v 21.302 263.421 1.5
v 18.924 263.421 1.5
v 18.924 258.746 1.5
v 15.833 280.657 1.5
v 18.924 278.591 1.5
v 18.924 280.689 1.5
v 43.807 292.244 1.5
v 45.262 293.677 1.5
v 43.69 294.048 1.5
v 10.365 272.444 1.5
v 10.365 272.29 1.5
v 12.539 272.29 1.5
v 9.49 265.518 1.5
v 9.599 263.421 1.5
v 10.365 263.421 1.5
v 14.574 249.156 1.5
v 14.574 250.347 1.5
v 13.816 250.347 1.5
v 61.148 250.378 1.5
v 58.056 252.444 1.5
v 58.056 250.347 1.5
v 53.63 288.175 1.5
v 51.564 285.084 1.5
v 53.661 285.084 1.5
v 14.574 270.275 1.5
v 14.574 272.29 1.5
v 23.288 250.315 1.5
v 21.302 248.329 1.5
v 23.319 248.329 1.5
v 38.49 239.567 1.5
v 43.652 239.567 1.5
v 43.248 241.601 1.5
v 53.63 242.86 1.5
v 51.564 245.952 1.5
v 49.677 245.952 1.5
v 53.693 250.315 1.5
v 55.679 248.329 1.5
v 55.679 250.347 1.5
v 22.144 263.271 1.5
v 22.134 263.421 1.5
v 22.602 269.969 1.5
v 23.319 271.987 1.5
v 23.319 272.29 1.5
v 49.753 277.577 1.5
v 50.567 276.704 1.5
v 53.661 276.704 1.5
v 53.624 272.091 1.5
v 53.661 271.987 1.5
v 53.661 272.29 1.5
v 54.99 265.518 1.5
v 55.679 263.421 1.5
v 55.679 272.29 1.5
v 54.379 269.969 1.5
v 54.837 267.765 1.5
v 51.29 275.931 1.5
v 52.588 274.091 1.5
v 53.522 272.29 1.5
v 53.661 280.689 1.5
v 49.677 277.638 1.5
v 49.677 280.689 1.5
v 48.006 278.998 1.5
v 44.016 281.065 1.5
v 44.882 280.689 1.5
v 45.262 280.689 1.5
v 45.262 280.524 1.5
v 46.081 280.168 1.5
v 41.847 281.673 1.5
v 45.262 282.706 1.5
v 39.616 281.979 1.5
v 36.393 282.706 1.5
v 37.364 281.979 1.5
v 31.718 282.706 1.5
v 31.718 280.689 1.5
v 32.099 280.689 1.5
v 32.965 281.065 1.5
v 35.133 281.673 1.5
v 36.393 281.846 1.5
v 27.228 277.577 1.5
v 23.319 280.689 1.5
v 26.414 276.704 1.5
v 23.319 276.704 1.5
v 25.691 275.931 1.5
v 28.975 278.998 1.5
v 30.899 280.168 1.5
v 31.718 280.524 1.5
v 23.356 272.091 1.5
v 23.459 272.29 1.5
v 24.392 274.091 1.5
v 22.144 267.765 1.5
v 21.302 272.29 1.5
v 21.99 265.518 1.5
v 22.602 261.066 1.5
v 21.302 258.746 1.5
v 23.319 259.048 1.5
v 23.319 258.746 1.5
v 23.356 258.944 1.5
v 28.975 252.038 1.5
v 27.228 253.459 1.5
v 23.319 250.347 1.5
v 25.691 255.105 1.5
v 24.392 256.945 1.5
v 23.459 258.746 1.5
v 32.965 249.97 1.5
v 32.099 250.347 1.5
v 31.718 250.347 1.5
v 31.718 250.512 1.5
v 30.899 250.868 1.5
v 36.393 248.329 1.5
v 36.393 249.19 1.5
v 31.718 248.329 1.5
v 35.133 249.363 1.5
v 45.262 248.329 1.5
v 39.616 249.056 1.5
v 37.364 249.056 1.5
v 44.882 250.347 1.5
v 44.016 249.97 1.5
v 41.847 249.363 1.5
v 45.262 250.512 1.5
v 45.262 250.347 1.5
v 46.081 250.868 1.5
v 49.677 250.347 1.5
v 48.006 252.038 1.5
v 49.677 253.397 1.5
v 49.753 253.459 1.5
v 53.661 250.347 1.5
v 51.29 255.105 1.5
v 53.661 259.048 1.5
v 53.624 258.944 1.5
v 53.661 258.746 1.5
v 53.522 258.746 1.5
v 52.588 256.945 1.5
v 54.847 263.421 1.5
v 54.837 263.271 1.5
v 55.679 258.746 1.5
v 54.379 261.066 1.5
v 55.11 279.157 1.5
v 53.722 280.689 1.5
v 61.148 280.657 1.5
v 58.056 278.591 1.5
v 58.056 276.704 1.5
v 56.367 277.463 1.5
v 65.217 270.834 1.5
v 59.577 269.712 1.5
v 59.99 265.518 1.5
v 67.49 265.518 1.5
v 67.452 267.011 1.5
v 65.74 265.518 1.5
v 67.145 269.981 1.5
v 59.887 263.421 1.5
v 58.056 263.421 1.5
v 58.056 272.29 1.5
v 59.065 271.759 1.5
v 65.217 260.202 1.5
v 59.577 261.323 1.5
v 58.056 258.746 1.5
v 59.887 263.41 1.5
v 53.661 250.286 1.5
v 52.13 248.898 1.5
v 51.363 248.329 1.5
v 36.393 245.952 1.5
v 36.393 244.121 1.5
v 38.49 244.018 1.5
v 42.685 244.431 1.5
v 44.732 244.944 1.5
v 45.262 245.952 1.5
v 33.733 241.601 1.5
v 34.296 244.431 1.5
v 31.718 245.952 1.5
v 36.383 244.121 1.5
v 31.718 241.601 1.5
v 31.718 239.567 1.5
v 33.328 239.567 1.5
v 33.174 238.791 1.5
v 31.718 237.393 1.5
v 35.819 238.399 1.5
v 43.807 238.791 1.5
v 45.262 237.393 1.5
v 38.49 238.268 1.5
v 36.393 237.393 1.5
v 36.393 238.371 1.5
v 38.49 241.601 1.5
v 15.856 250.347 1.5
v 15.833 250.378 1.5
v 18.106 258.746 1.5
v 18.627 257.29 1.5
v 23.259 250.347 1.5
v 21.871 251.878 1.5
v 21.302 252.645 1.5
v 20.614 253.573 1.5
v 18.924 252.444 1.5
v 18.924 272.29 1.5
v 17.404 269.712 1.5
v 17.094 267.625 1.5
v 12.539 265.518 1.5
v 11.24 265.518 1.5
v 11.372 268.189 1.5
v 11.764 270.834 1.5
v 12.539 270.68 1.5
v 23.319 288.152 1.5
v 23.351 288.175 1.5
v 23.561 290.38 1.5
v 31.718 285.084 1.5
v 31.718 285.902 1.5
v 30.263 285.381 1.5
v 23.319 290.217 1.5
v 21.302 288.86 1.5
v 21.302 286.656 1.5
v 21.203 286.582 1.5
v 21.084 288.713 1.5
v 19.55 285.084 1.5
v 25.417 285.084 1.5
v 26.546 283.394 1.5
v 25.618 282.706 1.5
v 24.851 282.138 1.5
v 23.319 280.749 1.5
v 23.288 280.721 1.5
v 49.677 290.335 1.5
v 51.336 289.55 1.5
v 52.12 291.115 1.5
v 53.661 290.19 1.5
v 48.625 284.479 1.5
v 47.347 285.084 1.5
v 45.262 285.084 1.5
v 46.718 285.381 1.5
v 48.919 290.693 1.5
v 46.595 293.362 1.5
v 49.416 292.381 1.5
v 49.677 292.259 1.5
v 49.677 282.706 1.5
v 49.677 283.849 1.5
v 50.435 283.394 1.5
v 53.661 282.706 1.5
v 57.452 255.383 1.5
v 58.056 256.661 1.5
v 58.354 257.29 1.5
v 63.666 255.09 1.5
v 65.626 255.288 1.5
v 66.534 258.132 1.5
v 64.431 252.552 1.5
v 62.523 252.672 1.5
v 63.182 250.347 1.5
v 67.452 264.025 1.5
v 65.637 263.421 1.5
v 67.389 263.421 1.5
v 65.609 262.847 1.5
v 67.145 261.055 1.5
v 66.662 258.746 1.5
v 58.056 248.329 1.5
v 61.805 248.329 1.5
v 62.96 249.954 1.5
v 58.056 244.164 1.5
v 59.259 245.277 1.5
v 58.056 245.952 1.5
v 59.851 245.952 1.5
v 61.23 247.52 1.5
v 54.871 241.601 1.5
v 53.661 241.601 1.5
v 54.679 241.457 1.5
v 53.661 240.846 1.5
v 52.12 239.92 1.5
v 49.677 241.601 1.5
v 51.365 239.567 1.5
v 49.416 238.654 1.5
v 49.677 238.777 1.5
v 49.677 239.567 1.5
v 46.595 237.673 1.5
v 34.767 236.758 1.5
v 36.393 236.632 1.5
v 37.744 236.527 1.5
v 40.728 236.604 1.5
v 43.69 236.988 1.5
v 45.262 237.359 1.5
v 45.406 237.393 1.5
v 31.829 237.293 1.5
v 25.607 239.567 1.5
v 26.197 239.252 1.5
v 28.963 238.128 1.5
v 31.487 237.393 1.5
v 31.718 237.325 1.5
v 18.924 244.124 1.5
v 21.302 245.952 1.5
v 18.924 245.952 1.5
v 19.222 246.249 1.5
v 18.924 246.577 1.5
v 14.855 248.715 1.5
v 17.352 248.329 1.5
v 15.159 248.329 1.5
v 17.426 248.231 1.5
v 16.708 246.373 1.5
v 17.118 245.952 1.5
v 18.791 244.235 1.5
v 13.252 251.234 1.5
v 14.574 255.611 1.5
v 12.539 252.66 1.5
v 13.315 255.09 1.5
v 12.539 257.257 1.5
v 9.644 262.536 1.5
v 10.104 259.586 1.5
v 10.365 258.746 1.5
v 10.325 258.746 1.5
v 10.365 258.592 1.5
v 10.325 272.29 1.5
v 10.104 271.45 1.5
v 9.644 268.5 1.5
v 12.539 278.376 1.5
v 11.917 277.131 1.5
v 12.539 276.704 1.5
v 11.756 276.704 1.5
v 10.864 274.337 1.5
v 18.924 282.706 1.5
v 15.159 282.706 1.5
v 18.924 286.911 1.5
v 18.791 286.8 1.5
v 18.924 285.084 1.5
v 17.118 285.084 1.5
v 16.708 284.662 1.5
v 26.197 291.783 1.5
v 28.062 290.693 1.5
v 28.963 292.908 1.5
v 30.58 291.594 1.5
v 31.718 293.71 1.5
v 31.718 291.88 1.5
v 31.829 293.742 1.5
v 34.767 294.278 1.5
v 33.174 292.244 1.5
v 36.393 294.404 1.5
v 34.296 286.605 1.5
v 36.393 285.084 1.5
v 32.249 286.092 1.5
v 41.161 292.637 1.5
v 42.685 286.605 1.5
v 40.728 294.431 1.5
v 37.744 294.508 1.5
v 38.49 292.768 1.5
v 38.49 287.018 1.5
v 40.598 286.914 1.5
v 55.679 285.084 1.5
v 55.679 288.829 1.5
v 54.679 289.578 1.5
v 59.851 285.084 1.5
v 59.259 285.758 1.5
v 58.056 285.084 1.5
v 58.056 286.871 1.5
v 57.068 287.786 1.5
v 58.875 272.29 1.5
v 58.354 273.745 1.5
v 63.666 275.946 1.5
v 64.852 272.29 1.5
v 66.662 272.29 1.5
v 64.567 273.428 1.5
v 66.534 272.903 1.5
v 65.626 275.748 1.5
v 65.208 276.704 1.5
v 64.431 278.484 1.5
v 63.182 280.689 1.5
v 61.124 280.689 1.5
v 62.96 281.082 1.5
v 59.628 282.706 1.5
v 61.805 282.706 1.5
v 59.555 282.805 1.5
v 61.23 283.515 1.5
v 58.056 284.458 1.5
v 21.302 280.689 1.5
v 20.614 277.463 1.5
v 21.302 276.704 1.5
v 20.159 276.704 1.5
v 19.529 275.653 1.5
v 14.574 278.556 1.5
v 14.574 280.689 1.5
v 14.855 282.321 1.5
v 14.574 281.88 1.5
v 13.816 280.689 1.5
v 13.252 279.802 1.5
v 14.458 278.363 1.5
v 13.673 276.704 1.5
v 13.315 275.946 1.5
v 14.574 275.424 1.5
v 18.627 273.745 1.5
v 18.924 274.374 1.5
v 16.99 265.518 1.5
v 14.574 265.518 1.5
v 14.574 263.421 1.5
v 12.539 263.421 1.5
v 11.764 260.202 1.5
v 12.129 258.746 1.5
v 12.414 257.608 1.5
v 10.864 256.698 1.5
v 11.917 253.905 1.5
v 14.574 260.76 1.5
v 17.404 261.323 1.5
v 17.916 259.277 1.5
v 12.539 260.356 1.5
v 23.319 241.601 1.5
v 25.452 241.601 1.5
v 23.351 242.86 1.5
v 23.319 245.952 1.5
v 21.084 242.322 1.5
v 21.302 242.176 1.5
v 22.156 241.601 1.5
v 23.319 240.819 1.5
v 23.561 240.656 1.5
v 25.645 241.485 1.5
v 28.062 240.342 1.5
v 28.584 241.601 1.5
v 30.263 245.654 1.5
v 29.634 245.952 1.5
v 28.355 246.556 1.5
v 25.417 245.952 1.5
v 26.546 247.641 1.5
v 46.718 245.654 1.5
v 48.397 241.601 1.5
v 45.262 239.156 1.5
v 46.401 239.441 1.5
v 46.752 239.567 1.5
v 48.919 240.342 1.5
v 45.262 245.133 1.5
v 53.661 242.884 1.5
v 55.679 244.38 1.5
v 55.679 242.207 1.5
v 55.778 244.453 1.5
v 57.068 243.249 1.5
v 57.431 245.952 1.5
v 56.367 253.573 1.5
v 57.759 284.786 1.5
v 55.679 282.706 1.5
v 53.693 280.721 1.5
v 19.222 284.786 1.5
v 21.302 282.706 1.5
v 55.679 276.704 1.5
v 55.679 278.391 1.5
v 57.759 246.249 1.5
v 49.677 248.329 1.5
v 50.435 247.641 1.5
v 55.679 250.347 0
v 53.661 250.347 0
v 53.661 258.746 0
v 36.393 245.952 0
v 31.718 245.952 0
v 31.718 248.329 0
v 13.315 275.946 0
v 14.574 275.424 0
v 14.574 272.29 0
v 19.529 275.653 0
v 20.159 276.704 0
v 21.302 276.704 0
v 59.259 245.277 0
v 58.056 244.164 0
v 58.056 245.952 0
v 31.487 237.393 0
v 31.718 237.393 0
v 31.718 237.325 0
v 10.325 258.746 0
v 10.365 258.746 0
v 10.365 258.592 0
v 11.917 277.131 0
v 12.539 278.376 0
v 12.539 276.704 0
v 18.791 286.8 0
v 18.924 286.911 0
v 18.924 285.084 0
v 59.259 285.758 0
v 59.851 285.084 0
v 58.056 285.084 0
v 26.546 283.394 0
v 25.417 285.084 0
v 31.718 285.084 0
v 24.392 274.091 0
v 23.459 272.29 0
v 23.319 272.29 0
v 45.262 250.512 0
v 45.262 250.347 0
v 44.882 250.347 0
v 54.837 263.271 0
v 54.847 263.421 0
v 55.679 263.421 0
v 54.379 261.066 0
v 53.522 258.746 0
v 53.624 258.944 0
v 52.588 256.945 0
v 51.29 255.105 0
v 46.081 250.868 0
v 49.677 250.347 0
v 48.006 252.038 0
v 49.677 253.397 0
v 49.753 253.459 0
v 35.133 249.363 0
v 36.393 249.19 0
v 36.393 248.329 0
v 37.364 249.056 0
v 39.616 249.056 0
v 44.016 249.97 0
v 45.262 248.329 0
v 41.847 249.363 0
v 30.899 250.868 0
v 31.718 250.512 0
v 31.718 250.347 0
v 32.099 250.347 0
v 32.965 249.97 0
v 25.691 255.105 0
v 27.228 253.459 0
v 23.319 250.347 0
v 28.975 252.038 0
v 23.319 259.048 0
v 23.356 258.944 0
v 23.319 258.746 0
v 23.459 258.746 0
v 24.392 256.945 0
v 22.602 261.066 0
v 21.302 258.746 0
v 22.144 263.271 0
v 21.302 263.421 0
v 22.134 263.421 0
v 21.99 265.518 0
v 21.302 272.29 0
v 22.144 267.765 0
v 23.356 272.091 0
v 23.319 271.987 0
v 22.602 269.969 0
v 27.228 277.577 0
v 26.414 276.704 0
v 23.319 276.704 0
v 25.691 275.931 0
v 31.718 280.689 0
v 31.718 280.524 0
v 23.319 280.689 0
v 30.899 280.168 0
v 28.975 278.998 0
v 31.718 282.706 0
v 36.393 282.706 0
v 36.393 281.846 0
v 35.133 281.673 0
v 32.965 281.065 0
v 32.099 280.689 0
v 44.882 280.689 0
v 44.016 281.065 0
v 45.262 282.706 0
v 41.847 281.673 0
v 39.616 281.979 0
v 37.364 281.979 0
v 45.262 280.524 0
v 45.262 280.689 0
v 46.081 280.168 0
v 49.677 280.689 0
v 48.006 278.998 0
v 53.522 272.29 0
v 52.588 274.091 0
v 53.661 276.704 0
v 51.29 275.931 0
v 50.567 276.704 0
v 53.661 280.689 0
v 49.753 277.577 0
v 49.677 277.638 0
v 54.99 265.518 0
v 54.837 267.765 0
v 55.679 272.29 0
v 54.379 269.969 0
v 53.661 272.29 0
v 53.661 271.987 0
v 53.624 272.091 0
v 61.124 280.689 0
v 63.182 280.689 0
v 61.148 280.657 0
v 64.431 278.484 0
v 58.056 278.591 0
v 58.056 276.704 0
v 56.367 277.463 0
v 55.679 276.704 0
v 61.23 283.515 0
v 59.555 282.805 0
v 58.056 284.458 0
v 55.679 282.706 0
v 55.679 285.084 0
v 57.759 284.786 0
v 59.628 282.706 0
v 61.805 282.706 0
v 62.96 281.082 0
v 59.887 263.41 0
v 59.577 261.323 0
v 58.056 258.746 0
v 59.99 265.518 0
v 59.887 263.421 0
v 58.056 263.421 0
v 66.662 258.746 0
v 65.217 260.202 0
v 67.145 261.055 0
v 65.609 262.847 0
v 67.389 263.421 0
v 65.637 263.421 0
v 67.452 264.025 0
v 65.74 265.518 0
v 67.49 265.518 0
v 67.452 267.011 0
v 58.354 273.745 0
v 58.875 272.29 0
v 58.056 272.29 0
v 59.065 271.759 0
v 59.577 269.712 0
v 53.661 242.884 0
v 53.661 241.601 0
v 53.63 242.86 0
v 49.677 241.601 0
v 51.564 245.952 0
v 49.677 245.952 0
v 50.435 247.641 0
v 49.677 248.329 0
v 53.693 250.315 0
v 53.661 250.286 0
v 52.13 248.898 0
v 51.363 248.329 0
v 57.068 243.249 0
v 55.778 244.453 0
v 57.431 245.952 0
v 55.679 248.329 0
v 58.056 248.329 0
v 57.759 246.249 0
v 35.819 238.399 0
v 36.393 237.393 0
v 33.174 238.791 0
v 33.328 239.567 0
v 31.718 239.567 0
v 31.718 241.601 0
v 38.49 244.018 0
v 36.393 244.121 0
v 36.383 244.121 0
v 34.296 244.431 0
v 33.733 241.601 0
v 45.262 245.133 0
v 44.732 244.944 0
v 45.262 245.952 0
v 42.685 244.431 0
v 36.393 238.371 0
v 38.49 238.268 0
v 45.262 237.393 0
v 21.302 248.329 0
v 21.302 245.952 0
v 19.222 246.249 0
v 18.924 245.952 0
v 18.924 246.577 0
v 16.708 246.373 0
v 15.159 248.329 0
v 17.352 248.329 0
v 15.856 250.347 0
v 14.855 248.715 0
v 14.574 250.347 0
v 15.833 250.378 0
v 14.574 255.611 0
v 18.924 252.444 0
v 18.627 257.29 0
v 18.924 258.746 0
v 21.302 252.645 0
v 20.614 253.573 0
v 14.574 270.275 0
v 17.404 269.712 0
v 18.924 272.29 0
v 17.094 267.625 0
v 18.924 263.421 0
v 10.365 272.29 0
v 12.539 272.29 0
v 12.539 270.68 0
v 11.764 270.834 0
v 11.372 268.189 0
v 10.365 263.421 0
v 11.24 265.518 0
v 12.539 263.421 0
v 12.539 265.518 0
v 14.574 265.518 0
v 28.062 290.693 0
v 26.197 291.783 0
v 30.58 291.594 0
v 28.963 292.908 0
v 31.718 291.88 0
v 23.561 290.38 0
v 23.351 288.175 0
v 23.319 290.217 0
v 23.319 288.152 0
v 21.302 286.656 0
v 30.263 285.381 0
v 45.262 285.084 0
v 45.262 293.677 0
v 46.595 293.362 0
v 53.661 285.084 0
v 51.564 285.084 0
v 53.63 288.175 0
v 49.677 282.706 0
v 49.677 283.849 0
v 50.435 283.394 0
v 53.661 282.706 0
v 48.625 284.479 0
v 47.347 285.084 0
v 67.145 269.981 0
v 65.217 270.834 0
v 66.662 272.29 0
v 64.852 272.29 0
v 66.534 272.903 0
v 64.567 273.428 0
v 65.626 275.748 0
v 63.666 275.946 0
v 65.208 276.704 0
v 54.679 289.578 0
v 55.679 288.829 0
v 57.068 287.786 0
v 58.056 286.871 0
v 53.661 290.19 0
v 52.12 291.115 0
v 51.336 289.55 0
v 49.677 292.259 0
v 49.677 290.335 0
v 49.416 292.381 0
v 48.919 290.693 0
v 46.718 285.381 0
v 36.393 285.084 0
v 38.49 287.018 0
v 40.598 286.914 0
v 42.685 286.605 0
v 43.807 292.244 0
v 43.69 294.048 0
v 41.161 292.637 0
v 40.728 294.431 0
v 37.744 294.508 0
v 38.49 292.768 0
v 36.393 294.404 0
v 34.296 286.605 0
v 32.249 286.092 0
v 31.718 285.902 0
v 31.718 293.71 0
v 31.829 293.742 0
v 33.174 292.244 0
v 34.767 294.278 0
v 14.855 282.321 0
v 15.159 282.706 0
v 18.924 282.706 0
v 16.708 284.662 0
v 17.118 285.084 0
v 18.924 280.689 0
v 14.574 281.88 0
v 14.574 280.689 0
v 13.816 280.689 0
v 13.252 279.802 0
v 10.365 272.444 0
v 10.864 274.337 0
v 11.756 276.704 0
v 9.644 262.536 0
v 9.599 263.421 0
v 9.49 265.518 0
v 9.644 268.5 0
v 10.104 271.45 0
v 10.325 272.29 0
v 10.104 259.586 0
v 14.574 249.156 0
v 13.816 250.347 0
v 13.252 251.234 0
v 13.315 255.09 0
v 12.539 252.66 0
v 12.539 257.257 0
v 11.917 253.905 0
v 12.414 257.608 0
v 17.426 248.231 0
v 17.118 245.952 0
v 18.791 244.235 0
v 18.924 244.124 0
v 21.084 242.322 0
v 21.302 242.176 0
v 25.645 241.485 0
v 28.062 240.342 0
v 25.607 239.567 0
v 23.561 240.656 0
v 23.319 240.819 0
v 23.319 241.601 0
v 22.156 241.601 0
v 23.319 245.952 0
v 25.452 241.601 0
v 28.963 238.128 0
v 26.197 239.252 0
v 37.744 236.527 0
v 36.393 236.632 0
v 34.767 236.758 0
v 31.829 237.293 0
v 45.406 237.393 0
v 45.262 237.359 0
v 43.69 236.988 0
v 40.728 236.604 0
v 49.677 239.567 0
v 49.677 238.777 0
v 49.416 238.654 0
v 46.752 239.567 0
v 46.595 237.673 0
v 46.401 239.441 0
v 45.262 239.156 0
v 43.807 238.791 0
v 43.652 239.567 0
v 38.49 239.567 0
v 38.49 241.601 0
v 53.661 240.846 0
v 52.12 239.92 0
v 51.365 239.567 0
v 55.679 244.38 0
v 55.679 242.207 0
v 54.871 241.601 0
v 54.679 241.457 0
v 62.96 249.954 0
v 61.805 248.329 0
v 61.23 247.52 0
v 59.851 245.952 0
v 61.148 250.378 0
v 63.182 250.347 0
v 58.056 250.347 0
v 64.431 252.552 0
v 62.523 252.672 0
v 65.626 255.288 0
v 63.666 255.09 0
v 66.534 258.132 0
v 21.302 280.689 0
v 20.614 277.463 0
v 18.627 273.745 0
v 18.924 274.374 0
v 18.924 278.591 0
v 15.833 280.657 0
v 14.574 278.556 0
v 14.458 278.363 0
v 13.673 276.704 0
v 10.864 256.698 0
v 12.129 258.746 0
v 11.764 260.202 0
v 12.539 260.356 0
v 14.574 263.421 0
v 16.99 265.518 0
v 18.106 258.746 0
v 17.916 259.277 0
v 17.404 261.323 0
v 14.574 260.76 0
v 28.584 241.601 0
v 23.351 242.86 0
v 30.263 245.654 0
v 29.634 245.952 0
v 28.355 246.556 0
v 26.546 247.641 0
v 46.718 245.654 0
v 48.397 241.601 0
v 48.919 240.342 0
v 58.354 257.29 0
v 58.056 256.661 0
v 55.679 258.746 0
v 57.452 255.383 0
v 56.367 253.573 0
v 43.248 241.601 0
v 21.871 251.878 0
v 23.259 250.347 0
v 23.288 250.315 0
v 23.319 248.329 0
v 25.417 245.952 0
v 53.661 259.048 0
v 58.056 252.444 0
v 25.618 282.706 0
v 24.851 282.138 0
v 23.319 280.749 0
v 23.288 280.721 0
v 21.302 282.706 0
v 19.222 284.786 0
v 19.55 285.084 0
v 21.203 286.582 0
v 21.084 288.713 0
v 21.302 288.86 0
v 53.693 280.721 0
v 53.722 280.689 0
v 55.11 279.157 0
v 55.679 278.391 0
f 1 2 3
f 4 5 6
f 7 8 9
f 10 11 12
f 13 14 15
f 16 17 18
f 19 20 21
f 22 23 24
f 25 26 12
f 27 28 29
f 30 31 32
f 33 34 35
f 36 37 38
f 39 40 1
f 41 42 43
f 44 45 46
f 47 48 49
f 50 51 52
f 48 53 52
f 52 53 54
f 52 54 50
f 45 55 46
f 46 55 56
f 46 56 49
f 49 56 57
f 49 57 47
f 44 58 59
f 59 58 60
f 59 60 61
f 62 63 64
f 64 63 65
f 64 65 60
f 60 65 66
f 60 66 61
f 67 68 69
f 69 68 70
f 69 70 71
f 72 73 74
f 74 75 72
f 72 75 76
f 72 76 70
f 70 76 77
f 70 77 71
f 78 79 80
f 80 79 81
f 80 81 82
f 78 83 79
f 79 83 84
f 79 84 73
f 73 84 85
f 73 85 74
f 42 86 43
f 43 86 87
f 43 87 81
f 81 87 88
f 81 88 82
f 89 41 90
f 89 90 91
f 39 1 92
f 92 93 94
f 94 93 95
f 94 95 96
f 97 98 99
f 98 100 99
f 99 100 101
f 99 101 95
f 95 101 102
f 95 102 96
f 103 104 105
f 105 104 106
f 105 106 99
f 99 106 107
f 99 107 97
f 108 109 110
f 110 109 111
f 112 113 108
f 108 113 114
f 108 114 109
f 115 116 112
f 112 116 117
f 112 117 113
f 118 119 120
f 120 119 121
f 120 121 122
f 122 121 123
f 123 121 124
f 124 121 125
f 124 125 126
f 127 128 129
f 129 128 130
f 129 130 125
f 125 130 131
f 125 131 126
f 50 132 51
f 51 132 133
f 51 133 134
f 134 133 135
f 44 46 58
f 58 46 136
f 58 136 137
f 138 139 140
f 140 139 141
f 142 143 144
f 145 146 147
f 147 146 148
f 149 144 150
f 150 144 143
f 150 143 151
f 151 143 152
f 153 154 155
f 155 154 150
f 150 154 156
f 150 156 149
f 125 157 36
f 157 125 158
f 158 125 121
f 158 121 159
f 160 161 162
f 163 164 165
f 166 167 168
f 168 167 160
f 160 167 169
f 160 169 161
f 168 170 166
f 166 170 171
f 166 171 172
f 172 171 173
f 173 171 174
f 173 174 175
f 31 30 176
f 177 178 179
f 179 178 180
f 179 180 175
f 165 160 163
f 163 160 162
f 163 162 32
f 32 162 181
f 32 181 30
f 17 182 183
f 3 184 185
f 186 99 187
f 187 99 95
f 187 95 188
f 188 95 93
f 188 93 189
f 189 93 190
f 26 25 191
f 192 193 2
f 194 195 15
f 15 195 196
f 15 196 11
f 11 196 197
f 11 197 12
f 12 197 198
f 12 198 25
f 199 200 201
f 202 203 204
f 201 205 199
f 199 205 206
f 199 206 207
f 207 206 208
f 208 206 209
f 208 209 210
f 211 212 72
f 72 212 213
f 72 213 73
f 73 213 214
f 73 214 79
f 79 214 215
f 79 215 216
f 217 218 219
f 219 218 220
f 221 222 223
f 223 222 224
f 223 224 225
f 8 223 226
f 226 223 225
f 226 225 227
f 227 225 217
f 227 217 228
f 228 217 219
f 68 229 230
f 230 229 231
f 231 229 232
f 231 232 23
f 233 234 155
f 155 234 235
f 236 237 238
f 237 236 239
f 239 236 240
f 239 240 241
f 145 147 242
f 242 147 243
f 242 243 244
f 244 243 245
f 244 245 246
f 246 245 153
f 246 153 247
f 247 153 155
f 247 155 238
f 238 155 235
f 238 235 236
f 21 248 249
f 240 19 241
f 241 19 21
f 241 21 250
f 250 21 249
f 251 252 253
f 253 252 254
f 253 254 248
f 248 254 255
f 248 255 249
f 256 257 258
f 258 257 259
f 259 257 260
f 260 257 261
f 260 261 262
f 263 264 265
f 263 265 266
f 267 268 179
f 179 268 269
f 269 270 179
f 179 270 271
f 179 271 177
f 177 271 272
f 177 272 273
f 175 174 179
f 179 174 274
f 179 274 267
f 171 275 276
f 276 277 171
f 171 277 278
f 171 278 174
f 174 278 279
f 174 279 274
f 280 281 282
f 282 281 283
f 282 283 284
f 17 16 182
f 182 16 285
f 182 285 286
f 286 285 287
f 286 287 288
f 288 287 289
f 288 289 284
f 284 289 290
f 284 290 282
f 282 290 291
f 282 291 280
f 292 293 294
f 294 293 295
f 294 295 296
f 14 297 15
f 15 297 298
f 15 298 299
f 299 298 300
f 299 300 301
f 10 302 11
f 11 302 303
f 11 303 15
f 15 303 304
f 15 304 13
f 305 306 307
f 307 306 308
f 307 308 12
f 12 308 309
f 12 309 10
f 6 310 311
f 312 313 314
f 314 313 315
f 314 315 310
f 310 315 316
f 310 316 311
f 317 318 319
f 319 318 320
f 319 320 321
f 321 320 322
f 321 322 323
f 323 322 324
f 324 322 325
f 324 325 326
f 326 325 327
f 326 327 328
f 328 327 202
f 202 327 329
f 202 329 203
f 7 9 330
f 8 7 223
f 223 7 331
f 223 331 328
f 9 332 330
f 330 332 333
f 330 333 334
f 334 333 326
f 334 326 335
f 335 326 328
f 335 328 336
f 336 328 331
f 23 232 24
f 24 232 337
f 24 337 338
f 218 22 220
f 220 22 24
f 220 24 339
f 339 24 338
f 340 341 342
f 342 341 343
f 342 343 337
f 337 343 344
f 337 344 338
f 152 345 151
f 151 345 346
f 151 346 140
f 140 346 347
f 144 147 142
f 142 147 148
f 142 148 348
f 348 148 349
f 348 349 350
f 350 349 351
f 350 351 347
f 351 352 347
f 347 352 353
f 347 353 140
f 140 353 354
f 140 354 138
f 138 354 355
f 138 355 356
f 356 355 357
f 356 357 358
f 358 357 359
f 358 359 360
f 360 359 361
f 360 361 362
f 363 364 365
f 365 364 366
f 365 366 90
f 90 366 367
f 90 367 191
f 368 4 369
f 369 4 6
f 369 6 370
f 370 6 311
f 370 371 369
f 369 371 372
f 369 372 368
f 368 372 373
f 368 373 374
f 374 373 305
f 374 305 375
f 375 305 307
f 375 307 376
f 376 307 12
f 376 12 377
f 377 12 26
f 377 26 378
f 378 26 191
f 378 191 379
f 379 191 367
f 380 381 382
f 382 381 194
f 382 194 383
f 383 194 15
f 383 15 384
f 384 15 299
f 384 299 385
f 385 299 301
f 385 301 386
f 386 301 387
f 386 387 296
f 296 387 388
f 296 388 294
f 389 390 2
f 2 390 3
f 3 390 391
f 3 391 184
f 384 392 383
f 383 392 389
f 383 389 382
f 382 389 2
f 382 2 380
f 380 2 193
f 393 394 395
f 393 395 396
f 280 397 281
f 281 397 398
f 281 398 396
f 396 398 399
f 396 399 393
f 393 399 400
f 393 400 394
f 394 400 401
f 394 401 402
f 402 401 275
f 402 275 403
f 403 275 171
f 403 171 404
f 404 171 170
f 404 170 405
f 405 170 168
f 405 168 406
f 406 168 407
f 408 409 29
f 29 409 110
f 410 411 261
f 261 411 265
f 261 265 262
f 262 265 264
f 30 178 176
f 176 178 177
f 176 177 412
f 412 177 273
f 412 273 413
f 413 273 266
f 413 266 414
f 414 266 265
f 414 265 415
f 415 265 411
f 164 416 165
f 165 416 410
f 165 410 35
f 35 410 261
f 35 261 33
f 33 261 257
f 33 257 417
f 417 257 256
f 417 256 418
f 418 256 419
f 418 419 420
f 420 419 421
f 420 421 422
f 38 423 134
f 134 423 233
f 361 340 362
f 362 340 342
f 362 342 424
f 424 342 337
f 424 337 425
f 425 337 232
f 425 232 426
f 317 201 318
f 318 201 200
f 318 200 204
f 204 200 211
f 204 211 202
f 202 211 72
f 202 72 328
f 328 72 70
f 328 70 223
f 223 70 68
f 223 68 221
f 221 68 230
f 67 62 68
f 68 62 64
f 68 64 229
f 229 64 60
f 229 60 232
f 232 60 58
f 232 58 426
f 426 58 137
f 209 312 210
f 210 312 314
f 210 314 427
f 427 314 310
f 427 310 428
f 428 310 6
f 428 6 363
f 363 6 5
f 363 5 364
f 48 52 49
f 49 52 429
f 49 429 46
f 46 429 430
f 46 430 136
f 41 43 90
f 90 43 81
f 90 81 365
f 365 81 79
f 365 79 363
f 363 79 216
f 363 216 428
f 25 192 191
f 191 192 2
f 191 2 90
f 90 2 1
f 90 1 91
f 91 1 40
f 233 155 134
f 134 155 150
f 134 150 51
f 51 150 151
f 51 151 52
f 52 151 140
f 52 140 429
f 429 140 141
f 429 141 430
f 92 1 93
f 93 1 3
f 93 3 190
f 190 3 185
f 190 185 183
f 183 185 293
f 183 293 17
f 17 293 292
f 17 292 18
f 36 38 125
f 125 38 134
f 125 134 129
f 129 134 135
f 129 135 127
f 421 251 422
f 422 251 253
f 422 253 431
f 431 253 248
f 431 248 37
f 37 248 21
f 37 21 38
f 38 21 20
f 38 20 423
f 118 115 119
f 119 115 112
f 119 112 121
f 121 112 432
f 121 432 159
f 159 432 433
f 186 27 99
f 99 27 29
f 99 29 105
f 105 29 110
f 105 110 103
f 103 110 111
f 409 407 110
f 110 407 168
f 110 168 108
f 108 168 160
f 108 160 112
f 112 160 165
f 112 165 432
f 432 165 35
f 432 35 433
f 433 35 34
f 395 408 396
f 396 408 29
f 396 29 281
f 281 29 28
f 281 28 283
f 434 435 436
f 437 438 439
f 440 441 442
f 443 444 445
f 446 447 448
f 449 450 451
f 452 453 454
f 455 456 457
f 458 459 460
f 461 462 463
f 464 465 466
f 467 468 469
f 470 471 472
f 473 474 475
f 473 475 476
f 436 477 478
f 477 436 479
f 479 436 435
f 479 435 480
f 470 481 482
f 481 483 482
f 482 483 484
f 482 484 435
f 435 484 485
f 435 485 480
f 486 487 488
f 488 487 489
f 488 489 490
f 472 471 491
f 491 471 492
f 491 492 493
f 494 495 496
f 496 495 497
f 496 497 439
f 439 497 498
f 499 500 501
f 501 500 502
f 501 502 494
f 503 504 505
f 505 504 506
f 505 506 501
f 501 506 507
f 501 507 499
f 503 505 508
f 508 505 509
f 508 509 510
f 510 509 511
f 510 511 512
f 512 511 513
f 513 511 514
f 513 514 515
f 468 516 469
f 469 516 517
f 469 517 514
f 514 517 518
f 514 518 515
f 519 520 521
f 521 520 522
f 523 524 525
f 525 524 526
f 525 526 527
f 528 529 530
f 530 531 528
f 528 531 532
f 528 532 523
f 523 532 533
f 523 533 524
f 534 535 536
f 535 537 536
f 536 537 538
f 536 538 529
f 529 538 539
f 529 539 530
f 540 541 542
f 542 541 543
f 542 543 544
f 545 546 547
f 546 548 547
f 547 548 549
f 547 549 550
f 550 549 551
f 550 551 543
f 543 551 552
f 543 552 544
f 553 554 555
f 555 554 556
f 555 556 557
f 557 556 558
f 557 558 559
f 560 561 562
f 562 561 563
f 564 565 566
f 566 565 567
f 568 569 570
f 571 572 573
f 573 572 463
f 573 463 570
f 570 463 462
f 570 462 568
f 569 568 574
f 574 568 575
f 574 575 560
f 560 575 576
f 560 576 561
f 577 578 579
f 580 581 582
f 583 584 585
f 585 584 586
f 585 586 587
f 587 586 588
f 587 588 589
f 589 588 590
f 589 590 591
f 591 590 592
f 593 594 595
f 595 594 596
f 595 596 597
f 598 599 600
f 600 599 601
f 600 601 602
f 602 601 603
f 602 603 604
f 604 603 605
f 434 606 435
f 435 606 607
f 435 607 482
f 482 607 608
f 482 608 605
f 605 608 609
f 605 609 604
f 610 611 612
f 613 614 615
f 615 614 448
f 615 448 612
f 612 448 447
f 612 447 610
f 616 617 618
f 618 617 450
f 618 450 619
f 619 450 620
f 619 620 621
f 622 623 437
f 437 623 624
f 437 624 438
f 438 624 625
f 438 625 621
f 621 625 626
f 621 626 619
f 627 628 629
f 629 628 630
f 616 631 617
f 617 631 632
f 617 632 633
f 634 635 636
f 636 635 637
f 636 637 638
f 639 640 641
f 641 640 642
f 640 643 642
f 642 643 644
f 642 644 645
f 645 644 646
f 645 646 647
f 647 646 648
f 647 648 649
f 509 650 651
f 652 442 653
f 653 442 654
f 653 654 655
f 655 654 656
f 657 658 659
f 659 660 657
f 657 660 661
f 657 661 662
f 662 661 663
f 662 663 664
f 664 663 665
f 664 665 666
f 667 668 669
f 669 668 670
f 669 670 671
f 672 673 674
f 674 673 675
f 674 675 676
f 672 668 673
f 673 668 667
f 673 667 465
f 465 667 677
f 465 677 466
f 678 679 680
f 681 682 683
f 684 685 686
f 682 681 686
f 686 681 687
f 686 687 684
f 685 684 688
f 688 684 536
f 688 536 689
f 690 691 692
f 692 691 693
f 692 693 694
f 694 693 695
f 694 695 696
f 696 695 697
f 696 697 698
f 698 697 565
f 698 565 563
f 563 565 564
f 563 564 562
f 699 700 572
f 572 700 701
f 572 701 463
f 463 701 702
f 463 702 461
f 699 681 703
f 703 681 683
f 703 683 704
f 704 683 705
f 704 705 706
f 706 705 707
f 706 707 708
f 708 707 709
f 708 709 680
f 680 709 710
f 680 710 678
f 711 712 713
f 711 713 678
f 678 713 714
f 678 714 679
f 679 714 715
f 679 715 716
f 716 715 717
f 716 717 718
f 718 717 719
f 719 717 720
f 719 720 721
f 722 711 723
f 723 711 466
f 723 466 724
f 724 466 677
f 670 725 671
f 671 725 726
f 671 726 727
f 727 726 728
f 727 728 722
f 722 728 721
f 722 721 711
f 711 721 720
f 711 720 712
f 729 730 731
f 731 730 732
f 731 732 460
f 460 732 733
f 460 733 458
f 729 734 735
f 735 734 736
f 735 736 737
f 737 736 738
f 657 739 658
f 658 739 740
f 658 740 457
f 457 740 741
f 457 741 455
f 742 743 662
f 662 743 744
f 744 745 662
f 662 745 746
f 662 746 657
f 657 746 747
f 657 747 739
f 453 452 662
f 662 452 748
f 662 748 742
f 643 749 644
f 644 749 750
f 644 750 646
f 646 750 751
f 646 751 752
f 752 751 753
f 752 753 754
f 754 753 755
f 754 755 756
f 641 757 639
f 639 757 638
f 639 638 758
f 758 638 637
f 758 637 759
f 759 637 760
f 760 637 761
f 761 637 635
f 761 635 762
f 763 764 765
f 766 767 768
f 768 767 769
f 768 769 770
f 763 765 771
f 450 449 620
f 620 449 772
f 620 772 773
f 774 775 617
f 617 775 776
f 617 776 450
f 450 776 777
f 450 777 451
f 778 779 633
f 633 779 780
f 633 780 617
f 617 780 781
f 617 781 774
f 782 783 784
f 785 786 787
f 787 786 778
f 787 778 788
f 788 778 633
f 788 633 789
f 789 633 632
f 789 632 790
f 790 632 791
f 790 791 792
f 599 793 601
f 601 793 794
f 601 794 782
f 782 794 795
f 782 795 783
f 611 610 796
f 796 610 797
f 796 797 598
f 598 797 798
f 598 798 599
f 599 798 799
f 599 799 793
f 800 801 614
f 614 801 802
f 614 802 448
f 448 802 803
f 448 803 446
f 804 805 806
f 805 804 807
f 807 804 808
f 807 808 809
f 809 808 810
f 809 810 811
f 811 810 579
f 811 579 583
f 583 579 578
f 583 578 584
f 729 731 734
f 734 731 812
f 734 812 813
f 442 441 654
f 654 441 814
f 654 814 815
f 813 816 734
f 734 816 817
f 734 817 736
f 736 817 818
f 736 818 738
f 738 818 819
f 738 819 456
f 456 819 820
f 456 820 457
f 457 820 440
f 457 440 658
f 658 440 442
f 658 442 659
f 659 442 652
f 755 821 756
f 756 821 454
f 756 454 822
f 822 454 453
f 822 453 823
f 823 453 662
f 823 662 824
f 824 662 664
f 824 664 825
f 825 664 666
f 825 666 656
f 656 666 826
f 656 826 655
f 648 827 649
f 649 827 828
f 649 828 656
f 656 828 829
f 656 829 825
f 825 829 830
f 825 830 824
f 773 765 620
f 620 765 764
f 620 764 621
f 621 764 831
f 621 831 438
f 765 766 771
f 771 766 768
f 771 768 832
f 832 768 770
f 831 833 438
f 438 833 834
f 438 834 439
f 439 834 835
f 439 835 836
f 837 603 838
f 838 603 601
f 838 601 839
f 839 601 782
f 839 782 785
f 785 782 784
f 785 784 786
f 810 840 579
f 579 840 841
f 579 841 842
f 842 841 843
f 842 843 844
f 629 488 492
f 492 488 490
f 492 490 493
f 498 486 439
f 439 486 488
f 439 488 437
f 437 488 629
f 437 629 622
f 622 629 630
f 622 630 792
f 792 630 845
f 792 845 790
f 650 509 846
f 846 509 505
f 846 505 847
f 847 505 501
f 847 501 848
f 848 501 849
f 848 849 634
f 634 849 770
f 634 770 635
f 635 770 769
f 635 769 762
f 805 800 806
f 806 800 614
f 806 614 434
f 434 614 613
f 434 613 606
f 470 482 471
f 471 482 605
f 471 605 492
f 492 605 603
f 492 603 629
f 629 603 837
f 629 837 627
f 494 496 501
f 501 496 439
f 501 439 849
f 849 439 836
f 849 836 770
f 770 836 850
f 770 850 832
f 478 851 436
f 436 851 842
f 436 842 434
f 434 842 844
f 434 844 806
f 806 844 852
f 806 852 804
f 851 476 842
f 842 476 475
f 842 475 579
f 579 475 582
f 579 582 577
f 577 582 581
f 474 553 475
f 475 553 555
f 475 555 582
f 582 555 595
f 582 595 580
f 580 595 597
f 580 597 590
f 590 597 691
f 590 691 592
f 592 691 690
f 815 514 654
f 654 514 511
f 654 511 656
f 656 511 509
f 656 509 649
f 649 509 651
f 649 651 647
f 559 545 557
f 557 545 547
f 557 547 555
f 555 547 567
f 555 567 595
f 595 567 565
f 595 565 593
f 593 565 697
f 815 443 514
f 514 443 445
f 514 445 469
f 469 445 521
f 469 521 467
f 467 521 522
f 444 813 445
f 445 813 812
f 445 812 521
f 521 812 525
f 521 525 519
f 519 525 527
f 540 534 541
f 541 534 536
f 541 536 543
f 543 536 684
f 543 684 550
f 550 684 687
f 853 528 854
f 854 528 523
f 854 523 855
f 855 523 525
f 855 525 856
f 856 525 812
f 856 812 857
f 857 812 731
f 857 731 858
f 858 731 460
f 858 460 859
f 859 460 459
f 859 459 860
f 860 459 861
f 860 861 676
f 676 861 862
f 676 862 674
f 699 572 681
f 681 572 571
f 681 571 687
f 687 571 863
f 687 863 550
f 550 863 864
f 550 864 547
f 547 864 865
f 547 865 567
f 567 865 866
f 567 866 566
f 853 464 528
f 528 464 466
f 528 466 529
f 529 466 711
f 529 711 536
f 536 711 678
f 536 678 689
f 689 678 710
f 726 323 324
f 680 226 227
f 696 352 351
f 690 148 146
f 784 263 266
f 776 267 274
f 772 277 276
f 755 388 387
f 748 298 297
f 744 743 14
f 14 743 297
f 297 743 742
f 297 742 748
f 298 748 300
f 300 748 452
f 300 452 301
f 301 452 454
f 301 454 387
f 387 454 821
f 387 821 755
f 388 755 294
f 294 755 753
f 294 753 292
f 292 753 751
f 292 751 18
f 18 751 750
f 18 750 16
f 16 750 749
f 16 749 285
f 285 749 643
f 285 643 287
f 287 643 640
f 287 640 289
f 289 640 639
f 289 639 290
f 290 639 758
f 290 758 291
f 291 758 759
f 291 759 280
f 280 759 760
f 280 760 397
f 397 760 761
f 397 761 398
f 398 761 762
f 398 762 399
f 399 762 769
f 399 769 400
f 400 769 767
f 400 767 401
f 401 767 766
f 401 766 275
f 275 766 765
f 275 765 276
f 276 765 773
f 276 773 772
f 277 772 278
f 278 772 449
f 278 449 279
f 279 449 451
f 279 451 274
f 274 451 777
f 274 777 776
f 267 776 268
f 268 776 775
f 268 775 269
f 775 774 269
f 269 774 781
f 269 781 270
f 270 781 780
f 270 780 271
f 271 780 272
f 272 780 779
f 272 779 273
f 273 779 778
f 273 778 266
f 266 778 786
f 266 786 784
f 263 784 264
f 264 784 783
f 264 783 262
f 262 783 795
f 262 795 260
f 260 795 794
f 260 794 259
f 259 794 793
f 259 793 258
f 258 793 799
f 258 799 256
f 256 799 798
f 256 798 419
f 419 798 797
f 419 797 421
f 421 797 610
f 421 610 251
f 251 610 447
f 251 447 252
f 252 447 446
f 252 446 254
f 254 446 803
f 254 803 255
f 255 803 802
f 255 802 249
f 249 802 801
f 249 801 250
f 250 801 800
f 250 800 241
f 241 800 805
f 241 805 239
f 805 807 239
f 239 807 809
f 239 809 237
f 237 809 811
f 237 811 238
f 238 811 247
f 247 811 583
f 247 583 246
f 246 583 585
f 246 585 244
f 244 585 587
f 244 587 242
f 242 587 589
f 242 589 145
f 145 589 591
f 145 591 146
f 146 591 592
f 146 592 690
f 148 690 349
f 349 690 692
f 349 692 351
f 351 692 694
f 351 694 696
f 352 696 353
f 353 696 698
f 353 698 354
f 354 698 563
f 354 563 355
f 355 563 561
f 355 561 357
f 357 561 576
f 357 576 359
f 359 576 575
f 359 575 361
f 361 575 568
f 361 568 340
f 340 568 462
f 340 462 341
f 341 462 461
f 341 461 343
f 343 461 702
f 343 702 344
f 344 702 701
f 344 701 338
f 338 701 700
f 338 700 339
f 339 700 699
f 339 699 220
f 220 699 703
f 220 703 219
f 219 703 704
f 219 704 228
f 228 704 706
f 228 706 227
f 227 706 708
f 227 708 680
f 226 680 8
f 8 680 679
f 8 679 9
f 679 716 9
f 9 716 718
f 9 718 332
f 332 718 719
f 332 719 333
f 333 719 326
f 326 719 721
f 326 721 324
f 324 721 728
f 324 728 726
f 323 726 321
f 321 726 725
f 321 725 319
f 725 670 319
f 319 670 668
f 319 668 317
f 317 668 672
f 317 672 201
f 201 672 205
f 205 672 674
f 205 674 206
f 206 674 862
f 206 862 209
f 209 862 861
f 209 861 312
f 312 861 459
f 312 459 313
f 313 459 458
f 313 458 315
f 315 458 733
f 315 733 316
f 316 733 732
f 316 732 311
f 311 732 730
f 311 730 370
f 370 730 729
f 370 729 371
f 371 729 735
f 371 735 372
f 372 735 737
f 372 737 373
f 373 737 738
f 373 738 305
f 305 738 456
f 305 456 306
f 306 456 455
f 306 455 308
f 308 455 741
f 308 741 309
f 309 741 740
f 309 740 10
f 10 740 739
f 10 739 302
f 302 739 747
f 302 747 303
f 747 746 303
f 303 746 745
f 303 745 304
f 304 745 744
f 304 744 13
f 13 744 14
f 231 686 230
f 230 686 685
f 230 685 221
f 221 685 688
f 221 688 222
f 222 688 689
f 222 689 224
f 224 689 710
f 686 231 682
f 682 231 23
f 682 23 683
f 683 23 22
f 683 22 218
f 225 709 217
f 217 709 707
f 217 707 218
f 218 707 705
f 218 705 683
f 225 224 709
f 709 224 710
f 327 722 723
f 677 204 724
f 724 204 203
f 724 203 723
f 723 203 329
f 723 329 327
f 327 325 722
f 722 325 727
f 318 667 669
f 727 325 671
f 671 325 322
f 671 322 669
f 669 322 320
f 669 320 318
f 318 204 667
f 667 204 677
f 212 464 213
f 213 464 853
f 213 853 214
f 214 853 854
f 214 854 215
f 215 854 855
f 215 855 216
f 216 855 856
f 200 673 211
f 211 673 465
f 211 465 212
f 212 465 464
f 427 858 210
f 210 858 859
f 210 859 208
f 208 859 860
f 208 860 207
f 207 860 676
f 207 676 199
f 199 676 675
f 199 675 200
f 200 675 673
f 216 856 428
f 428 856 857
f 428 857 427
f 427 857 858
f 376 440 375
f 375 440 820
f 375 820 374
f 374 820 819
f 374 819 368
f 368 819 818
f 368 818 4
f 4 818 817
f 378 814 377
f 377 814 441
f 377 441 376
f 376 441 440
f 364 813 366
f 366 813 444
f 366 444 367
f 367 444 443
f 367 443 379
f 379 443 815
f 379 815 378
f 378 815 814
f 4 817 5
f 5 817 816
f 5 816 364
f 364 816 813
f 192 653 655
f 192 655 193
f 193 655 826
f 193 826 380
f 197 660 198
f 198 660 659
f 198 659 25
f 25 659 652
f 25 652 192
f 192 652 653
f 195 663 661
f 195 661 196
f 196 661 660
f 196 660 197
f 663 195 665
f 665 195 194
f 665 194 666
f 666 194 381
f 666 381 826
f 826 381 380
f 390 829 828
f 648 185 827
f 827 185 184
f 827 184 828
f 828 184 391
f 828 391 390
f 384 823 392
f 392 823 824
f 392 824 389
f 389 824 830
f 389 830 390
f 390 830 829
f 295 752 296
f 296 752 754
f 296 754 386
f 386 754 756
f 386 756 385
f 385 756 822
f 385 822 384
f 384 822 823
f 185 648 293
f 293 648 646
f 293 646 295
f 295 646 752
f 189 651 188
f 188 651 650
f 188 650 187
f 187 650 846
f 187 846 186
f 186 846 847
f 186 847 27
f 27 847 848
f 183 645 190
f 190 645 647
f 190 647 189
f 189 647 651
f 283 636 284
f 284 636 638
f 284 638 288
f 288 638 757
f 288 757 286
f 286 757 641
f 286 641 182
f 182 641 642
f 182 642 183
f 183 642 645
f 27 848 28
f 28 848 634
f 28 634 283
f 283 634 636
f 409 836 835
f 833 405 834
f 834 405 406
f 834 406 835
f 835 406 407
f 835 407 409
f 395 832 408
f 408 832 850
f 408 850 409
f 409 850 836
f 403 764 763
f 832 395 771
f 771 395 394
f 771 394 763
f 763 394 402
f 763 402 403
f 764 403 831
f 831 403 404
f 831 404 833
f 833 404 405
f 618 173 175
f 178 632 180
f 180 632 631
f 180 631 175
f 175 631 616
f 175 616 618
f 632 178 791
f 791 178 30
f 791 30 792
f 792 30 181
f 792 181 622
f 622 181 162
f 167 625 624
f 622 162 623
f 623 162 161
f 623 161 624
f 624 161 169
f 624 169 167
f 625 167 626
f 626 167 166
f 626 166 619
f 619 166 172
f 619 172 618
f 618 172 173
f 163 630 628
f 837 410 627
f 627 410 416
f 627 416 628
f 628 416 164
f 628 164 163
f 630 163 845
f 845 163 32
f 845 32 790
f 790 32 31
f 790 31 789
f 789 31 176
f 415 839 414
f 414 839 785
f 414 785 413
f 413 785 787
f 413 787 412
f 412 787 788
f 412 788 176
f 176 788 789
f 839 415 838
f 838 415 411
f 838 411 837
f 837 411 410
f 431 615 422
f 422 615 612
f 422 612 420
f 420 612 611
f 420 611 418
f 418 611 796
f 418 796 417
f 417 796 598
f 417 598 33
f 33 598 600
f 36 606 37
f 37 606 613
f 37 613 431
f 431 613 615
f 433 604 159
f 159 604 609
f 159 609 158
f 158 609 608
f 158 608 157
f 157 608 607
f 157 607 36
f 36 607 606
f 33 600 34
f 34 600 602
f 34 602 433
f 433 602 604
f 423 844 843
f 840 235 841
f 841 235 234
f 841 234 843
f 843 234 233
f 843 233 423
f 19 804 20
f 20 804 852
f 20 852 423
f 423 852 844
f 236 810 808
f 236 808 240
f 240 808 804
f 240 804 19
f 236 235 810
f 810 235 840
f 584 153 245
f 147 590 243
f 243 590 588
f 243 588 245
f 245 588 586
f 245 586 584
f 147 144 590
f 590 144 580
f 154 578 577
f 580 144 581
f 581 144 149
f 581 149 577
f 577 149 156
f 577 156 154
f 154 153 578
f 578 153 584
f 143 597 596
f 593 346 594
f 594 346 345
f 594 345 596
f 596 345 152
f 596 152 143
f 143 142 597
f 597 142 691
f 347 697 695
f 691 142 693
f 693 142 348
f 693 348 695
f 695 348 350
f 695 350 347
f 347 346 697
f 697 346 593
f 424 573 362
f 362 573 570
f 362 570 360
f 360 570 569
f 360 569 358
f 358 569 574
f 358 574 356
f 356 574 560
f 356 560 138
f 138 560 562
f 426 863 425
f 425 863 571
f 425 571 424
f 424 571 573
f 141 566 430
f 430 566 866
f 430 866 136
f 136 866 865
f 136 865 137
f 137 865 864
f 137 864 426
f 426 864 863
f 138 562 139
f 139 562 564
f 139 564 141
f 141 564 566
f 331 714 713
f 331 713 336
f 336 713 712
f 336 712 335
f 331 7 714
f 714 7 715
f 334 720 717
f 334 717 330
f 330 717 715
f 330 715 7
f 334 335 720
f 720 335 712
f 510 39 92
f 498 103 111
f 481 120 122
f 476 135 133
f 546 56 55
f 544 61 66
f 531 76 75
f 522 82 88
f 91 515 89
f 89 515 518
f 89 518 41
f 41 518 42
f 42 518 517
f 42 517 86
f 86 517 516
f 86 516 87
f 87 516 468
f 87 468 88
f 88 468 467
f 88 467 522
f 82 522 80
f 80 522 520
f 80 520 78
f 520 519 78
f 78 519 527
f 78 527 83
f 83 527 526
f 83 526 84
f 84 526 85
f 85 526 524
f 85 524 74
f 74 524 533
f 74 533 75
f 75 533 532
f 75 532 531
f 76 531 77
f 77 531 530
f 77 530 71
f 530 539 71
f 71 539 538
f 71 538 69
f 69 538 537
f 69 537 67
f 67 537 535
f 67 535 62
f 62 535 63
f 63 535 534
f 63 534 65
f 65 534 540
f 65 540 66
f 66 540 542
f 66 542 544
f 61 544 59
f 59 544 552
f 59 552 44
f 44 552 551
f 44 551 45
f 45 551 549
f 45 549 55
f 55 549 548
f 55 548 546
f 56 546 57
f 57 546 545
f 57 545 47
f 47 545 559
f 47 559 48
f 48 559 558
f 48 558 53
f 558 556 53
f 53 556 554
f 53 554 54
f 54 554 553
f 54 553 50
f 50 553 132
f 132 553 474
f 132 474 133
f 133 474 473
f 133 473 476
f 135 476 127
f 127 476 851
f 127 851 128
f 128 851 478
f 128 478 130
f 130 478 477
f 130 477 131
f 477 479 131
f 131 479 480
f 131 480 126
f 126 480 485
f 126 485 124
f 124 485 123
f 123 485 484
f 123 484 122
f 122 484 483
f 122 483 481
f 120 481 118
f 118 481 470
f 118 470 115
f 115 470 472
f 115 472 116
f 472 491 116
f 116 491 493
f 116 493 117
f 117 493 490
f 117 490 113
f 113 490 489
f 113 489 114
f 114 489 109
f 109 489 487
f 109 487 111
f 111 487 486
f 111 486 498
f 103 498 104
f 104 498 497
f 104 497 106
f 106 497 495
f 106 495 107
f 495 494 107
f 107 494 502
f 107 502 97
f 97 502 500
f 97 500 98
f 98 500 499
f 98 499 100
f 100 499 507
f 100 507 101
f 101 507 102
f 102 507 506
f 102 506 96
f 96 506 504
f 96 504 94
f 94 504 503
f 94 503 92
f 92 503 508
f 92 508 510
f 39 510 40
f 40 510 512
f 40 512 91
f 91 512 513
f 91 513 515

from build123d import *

# Parameters (mm, degrees)
MODEL_R                 = 29
MODEL_R_2               = 16.5
SALIENTE_EXTRUIR1_DEPTH = 1.5


with BuildPart() as part:
    # Model → Saliente-Extruir1 (new body)
    with BuildSketch(Plane.XY):
        with Locations((38.490393449, 265.517783021)):
            Circle(MODEL_R)
        with Locations((38.490393449, 265.517783021)):
            Circle(MODEL_R_2, mode=Mode.SUBTRACT)
        with BuildLine():
            Line((38.490393449, 287.017783021), (38.490393449, 292.767783021))
            ThreePointArc((38.490393449, 292.767783021), (41.161360523, 292.636566823), (43.806604724, 292.244181912))
            Line((43.806604724, 292.244181912), (42.684835372, 286.60466655))
            ThreePointArc((42.684835372, 286.60466655), (40.597761966, 286.914254645), (38.490393449, 287.017783021))
        make_face(mode=Mode.SUBTRACT)
        with BuildLine():
            Line((34.295951526, 286.60466655), (33.174182174, 292.244181912))
            ThreePointArc((33.174182174, 292.244181912), (30.580135994, 291.59440717), (28.062269917, 290.693500282))
            Line((28.062269917, 290.693500282), (30.262699653, 285.38119297))
            ThreePointArc((30.262699653, 285.38119297), (32.249272888, 286.09200024), (34.295951526, 286.60466655))
        make_face(mode=Mode.SUBTRACT)
        with BuildLine():
            Line((26.545633439, 283.394379686), (23.351104599, 288.175329957))
            ThreePointArc((23.351104599, 288.175329957), (21.203176455, 286.582317876), (19.221733662, 284.786442809))
            Line((19.221733662, 284.786442809), (23.287597653, 280.720578817))
            ThreePointArc((23.287597653, 280.720578817), (24.850937839, 282.137507769), (26.545633439, 283.394379686))
        make_face(mode=Mode.SUBTRACT)
        with BuildLine():
            Line((20.613796784, 277.462543031), (15.832846514, 280.657071871))
            ThreePointArc((15.832846514, 280.657071871), (14.458038995, 278.3633441), (13.314676188, 275.945906553))
            Line((13.314676188, 275.945906553), (18.6269835, 273.745476817))
            ThreePointArc((18.6269835, 273.745476817), (19.529086265, 275.652812863), (20.613796784, 277.462543031))
        make_face(mode=Mode.SUBTRACT)
        with BuildLine():
            Line((17.40350992, 269.712224945), (11.763994558, 270.833994296))
            ThreePointArc((11.763994558, 270.833994296), (11.371609647, 268.188750095), (11.240393449, 265.517783021))
            Line((11.240393449, 265.517783021), (16.990393449, 265.517783021))
            ThreePointArc((16.990393449, 265.517783021), (17.093921825, 267.625151538), (17.40350992, 269.712224945))
        make_face(mode=Mode.SUBTRACT)
        with BuildLine():
            Line((17.40350992, 261.323341098), (11.763994558, 260.201571746))
            ThreePointArc((11.763994558, 260.201571746), (12.4137693, 257.607525566), (13.314676188, 255.089659489))
            Line((13.314676188, 255.089659489), (18.6269835, 257.290089226))
            ThreePointArc((18.6269835, 257.290089226), (17.916176231, 259.27666246), (17.40350992, 261.323341098))
        make_face(mode=Mode.SUBTRACT)
        with BuildLine():
            Line((20.613796784, 253.573023011), (15.832846514, 250.378494172))
            ThreePointArc((15.832846514, 250.378494172), (17.425858595, 248.230566028), (19.221733662, 246.249123234))
            Line((19.221733662, 246.249123234), (23.287597653, 250.314987226))
            ThreePointArc((23.287597653, 250.314987226), (21.870668702, 251.878327412), (20.613796784, 253.573023011))
        make_face(mode=Mode.SUBTRACT)
        with BuildLine():
            Line((26.545633439, 247.641186357), (23.351104599, 242.860236086))
            ThreePointArc((23.351104599, 242.860236086), (25.64483237, 241.485428568), (28.062269917, 240.34206576))
            Line((28.062269917, 240.34206576), (30.262699653, 245.654373072))
            ThreePointArc((30.262699653, 245.654373072), (28.355363607, 246.556475838), (26.545633439, 247.641186357))
        make_face(mode=Mode.SUBTRACT)
        with BuildLine():
            Line((34.295951526, 244.430899493), (33.174182174, 238.79138413))
            ThreePointArc((33.174182174, 238.79138413), (35.819426375, 238.39899922), (38.490393449, 238.267783021))
            Line((38.490393449, 238.267783021), (38.490393449, 244.017783021))
            ThreePointArc((38.490393449, 244.017783021), (36.383024932, 244.121311398), (34.295951526, 244.430899493))
        make_face(mode=Mode.SUBTRACT)
        with BuildLine():
            Line((42.684835372, 244.430899493), (43.806604724, 238.79138413))
            ThreePointArc((43.806604724, 238.79138413), (46.400650904, 239.441158873), (48.918516981, 240.34206576))
            Line((48.918516981, 240.34206576), (46.718087245, 245.654373072))
            ThreePointArc((46.718087245, 245.654373072), (44.73151401, 244.943565803), (42.684835372, 244.430899493))
        make_face(mode=Mode.SUBTRACT)
        with BuildLine():
            Line((50.435153459, 247.641186357), (53.629682299, 242.860236086))
            ThreePointArc((53.629682299, 242.860236086), (55.777610442, 244.453248167), (57.759053236, 246.249123234))
            Line((57.759053236, 246.249123234), (53.693189244, 250.314987226))
            ThreePointArc((53.693189244, 250.314987226), (52.129849058, 248.898058274), (50.435153459, 247.641186357))
        make_face(mode=Mode.SUBTRACT)
        with BuildLine():
            Line((56.366990113, 253.573023011), (61.147940384, 250.378494172))
            ThreePointArc((61.147940384, 250.378494172), (62.522747902, 252.672221943), (63.66611071, 255.089659489))
            Line((63.66611071, 255.089659489), (58.353803398, 257.290089226))
            ThreePointArc((58.353803398, 257.290089226), (57.451700632, 255.38275318), (56.366990113, 253.573023011))
        make_face(mode=Mode.SUBTRACT)
        with BuildLine():
            Line((59.577276978, 261.323341098), (65.21679234, 260.201571746))
            ThreePointArc((65.21679234, 260.201571746), (65.609177251, 262.846815947), (65.740393449, 265.517783021))
            Line((65.740393449, 265.517783021), (59.990393449, 265.517783021))
            ThreePointArc((59.990393449, 265.517783021), (59.886865072, 263.410414504), (59.577276978, 261.323341098))
        make_face(mode=Mode.SUBTRACT)
        with BuildLine():
            Line((59.577276978, 269.712224945), (65.21679234, 270.833994296))
            ThreePointArc((65.21679234, 270.833994296), (64.567017598, 273.428040477), (63.66611071, 275.945906553))
            Line((63.66611071, 275.945906553), (58.353803398, 273.745476817))
            ThreePointArc((58.353803398, 273.745476817), (59.064610667, 271.758903582), (59.577276978, 269.712224945))
        make_face(mode=Mode.SUBTRACT)
        with BuildLine():
            Line((56.366990113, 277.462543031), (61.147940384, 280.657071871))
            ThreePointArc((61.147940384, 280.657071871), (59.554928303, 282.805000015), (57.759053236, 284.786442809))
            Line((57.759053236, 284.786442809), (53.693189244, 280.720578817))
            ThreePointArc((53.693189244, 280.720578817), (55.110118196, 279.157238631), (56.366990113, 277.462543031))
        make_face(mode=Mode.SUBTRACT)
        with BuildLine():
            Line((50.435153459, 283.394379686), (53.629682299, 288.175329957))
            ThreePointArc((53.629682299, 288.175329957), (51.335954527, 289.550137475), (48.918516981, 290.693500282))
            Line((48.918516981, 290.693500282), (46.718087245, 285.38119297))
            ThreePointArc((46.718087245, 285.38119297), (48.625423291, 284.479090205), (50.435153459, 283.394379686))
        make_face(mode=Mode.SUBTRACT)
    extrude(amount=SALIENTE_EXTRUIR1_DEPTH)


solid = part.part
